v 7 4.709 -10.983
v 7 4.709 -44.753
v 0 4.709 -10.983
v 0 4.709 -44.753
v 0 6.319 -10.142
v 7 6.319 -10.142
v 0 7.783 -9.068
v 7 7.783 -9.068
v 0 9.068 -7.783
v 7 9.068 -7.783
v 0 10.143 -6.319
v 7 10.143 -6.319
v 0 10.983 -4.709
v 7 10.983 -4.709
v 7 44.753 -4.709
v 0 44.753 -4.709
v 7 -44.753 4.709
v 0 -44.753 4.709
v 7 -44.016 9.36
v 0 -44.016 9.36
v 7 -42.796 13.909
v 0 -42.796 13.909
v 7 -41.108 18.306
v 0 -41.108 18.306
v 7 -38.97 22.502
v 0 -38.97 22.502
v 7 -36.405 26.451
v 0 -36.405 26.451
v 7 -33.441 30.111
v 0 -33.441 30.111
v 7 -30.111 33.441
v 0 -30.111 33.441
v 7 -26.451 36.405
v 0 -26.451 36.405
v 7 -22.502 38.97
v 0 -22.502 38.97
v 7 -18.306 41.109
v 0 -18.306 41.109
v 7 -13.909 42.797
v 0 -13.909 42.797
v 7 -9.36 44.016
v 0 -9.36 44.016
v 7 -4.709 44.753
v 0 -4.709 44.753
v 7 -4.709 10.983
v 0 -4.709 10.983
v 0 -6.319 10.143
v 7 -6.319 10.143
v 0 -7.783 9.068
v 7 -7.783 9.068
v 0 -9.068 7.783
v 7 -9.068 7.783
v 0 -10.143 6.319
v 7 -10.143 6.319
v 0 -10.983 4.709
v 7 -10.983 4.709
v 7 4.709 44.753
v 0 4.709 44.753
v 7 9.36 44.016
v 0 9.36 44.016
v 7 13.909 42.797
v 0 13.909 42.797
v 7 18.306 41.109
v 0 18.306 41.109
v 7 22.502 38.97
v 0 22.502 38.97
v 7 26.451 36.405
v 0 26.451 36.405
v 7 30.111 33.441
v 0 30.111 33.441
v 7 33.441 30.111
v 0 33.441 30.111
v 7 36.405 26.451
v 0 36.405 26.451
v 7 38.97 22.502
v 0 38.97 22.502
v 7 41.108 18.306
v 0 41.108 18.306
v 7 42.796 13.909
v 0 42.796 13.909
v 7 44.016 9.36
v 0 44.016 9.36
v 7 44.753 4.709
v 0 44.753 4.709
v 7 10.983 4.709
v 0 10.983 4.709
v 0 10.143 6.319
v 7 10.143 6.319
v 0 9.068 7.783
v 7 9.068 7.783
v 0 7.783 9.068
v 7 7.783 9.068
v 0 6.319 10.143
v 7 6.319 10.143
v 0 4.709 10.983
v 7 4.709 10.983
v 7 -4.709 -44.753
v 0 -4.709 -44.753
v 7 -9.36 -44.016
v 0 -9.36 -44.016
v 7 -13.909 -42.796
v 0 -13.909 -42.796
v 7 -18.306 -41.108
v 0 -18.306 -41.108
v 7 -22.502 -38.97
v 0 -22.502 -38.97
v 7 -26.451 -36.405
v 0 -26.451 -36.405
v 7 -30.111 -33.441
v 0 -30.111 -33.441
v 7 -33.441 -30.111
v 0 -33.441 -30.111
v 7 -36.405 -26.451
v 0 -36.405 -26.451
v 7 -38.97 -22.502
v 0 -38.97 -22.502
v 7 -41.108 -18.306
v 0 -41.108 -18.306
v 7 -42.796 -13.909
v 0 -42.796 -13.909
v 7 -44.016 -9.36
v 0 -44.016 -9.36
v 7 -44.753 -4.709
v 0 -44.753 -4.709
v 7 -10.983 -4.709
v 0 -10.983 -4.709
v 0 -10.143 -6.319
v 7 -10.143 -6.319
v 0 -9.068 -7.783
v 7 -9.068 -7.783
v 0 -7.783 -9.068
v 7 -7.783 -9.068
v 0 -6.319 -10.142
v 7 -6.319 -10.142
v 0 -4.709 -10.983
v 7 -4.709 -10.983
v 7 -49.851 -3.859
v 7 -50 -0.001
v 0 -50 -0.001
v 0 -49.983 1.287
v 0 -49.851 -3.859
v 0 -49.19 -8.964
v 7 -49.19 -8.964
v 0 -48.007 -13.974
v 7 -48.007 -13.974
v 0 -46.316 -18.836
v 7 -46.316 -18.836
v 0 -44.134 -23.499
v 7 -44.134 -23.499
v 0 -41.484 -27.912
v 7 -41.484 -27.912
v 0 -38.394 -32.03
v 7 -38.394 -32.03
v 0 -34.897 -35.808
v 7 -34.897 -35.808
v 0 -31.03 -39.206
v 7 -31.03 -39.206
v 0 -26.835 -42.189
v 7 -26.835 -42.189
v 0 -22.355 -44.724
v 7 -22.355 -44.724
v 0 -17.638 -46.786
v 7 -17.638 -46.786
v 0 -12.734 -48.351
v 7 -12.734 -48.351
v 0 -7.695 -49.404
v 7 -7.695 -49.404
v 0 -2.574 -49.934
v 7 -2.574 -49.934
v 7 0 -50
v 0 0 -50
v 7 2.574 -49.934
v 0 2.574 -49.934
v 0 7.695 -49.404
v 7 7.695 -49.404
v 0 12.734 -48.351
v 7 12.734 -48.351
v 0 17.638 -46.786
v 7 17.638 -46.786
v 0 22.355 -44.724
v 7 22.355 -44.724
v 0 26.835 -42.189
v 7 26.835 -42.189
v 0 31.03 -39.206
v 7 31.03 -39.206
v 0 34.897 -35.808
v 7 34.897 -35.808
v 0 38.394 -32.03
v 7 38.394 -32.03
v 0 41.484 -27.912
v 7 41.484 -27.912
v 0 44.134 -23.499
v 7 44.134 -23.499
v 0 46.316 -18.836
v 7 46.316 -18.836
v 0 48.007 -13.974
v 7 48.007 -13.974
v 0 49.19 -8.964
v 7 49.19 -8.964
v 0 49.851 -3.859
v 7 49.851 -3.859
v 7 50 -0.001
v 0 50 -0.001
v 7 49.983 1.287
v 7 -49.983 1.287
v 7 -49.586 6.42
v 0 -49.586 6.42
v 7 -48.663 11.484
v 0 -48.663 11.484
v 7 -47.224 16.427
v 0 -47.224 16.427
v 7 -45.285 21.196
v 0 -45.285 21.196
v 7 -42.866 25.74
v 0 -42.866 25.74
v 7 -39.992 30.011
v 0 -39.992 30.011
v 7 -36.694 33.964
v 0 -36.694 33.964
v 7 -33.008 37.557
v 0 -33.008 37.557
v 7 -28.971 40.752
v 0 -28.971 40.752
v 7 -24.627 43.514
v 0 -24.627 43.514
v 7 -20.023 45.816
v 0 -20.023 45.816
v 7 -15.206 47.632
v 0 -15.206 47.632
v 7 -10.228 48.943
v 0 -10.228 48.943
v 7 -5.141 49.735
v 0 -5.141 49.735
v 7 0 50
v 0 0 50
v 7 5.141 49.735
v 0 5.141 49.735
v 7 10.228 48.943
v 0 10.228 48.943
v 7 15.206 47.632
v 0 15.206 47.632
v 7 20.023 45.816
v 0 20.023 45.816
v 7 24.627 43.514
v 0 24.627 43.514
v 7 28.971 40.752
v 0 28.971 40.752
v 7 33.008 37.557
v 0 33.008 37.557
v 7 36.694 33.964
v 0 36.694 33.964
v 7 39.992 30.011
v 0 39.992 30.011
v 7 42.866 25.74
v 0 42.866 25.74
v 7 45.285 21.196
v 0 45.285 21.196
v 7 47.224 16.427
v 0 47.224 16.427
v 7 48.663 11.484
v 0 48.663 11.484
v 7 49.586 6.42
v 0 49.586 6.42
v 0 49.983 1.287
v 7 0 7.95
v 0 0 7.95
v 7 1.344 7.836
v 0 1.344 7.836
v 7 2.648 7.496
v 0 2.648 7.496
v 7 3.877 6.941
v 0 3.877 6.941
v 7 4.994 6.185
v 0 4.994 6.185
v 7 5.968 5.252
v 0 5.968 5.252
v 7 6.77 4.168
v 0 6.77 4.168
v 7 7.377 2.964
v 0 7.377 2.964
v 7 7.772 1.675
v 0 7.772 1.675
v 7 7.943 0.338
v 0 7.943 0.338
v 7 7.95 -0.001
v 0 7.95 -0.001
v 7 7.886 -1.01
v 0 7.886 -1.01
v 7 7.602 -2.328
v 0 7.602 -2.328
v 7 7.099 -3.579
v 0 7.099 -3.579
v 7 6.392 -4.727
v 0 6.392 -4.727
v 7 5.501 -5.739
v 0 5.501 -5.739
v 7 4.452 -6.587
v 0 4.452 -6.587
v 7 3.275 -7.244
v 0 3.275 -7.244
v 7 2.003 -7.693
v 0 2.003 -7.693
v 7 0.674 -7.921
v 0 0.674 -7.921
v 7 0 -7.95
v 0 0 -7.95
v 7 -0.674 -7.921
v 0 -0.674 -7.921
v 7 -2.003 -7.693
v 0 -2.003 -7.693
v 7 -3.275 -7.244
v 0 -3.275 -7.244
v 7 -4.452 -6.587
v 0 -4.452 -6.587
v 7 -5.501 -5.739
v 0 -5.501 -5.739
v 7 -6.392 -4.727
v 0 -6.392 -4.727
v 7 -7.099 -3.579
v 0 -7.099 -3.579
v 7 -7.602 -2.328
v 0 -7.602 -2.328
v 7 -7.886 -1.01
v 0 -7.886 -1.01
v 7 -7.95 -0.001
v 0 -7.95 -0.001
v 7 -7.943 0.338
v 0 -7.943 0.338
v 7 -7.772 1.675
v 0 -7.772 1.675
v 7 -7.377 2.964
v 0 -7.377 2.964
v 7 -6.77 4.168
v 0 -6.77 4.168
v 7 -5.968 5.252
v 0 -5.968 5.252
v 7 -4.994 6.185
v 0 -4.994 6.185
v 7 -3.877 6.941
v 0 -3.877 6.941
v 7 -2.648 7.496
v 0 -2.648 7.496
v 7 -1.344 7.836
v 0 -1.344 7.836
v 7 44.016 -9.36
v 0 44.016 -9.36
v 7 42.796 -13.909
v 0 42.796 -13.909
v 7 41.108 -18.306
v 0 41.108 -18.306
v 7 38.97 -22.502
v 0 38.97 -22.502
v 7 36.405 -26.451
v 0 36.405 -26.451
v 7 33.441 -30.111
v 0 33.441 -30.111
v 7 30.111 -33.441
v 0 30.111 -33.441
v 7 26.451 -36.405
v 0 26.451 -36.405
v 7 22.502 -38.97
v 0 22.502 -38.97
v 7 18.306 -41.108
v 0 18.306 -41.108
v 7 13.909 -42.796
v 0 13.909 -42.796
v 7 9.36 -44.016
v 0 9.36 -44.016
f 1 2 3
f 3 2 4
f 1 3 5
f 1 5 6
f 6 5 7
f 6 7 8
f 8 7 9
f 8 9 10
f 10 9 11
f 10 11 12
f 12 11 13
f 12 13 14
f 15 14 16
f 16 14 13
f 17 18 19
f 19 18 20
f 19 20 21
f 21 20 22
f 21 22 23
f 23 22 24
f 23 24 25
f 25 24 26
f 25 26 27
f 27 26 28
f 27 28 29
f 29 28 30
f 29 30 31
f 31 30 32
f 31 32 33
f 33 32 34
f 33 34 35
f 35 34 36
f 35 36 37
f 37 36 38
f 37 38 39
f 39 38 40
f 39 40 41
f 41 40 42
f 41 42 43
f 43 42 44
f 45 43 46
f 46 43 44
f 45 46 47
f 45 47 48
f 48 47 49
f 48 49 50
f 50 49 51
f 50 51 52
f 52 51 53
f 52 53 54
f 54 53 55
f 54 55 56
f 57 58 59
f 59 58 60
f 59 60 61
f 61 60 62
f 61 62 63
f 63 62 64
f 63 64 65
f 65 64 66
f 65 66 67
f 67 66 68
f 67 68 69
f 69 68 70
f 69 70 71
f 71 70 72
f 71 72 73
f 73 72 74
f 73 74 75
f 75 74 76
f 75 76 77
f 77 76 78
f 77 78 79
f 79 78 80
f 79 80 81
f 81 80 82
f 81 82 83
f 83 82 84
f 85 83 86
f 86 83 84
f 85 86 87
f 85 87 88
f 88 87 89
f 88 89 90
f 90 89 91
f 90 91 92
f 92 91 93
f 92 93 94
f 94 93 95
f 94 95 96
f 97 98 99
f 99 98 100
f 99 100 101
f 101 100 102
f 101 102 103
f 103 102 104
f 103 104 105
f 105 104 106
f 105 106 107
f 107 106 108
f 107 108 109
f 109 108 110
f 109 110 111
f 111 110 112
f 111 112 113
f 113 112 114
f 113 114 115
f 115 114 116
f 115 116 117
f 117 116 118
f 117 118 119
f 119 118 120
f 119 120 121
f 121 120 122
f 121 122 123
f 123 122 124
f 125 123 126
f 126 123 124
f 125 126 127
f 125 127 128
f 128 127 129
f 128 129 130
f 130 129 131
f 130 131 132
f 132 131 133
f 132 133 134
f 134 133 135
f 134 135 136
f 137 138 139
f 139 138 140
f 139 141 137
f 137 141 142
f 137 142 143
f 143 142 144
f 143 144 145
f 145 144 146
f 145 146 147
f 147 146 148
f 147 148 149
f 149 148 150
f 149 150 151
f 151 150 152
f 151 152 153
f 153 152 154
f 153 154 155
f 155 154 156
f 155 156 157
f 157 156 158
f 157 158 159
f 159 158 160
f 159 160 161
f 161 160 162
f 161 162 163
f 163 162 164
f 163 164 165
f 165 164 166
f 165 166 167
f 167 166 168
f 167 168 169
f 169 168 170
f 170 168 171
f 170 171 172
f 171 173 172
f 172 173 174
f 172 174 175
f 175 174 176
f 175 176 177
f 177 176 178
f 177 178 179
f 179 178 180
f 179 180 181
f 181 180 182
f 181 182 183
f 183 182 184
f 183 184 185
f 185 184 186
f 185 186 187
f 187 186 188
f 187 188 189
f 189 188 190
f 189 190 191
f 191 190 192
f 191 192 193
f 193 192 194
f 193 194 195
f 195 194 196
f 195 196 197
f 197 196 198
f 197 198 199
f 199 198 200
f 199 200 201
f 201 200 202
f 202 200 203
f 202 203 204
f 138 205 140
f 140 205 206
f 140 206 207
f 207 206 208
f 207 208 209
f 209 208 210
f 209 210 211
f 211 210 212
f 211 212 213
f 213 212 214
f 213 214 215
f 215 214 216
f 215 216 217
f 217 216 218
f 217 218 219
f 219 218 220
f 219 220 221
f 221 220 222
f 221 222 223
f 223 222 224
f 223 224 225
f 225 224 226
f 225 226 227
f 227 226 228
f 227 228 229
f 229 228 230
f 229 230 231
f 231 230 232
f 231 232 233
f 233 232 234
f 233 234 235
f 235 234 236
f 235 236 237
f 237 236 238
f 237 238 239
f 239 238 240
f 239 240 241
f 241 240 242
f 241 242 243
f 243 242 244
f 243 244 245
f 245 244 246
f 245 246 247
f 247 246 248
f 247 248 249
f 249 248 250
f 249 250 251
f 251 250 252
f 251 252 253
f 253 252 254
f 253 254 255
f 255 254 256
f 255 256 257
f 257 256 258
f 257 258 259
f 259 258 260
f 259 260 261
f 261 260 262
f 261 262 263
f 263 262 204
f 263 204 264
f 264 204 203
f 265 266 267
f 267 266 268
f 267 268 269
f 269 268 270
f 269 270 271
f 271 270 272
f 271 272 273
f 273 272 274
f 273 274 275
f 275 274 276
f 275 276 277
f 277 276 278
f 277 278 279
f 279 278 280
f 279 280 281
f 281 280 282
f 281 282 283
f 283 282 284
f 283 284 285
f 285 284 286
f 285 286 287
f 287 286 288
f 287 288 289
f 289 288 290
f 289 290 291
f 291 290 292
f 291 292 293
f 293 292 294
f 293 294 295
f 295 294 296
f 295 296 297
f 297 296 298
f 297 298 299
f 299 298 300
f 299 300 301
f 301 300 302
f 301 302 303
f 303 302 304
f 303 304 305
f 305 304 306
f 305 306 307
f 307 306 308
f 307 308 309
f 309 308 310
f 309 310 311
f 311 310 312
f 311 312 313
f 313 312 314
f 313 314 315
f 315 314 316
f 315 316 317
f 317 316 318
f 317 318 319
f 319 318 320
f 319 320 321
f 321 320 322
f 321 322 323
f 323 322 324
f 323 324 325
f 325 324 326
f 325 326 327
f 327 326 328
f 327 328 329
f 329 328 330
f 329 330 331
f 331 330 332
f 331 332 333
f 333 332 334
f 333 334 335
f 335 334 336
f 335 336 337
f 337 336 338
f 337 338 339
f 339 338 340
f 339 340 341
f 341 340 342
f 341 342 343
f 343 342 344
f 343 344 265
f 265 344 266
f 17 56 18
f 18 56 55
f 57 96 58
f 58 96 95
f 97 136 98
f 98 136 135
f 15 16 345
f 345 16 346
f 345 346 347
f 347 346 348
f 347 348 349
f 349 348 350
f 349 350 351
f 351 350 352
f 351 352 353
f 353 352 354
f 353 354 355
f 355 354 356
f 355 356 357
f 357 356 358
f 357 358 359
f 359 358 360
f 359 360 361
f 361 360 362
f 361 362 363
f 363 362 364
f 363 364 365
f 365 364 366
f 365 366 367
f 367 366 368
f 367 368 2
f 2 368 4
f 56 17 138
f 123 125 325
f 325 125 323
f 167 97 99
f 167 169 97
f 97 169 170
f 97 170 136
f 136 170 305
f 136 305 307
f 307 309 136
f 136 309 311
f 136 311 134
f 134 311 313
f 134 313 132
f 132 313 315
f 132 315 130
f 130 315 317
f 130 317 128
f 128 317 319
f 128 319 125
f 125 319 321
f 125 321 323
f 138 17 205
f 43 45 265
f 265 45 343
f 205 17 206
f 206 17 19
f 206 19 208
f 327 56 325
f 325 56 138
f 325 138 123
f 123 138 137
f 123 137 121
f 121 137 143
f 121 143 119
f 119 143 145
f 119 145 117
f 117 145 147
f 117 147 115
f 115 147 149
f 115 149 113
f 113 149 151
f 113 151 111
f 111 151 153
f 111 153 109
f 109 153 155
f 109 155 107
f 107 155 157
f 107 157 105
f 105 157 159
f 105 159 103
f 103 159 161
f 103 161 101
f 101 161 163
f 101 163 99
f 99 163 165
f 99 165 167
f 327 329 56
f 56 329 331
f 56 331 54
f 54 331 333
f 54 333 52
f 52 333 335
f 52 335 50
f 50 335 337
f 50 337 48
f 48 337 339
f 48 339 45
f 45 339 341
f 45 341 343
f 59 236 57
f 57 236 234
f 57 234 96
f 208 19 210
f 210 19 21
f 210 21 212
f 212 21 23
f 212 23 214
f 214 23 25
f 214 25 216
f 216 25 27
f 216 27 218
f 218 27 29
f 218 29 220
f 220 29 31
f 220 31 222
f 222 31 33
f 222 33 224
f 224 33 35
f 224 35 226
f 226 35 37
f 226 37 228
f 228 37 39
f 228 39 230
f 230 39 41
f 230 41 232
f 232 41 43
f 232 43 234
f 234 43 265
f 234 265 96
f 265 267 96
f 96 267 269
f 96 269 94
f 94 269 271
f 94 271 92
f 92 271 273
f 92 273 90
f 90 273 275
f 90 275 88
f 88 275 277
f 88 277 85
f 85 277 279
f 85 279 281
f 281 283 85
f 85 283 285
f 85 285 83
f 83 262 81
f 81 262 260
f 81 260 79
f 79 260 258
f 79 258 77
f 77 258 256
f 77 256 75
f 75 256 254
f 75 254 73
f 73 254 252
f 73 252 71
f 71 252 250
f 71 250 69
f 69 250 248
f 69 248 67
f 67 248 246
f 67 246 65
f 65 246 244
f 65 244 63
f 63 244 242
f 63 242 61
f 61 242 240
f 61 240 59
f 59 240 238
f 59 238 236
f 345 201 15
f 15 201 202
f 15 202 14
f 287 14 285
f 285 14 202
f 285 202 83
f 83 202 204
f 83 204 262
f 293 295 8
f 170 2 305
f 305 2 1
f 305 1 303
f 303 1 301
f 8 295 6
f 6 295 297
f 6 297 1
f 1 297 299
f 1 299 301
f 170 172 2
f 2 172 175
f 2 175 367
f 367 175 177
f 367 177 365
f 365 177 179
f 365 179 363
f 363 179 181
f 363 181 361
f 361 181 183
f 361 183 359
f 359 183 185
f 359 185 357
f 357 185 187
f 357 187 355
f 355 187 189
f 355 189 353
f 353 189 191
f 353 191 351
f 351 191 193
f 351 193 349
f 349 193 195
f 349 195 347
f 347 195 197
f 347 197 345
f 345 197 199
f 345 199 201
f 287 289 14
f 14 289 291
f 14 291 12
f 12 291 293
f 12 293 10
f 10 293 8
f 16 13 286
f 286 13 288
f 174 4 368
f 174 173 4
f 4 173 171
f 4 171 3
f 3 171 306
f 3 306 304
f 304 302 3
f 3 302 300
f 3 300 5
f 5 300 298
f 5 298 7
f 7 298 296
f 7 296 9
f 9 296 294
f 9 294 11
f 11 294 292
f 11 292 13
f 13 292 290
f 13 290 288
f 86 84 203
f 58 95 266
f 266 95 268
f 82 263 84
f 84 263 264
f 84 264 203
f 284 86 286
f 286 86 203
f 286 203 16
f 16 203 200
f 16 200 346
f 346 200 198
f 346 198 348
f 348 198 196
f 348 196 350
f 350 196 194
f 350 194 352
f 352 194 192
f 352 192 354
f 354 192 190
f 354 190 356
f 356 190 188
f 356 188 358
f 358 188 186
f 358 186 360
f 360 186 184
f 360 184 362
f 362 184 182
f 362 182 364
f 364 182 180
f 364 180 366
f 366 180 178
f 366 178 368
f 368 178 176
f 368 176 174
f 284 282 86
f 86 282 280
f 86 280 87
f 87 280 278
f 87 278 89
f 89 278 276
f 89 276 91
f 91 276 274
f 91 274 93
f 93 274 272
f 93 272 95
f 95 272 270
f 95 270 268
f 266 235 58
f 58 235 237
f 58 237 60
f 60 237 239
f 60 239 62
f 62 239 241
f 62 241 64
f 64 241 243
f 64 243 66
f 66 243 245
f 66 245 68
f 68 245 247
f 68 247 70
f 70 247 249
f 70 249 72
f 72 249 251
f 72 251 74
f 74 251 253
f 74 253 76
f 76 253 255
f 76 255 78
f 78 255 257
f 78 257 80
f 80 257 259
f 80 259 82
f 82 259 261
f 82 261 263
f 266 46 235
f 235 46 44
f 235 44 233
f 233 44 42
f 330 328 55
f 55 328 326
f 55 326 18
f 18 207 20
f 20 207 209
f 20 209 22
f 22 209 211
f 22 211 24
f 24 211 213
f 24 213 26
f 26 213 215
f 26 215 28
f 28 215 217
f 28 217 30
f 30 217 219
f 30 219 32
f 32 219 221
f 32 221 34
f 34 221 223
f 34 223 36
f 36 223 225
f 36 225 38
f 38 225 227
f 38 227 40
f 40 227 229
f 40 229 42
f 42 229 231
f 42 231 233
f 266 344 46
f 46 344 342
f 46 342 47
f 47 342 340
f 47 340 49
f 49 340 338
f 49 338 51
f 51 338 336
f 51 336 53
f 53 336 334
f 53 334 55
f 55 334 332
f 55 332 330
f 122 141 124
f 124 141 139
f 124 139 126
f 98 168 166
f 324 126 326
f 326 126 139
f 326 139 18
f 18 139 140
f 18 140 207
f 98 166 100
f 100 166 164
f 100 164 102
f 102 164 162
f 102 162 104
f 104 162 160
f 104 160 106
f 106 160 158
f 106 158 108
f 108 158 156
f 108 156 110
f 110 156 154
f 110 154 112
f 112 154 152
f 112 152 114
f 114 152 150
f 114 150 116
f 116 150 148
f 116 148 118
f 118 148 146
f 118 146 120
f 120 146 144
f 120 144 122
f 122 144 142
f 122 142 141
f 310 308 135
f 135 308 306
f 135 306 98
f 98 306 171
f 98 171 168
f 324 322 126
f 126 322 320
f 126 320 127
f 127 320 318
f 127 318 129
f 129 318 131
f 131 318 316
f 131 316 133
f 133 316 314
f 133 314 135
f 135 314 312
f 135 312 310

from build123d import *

# Parameters (mm, degrees)
SKETCH3_R           = 50
BOSS_EXTRUDE3_DEPTH = 7


with BuildPart() as part:
    # Sketch3 → Boss-Extrude3 (new body)
    with BuildSketch(Plane(origin=(0, 0, 0), x_dir=(0, 0, -1), z_dir=(1, 0, 0))):
        Circle(SKETCH3_R)
        with BuildLine():
            Line((-4.708862012, -10.983128814), (-4.708862012, -44.752950948))
            ThreePointArc((-4.708862012, -44.752950948), (-31.819805153, -31.819805153), (-44.752950948, -4.708862012))
            Line((-44.752950948, -4.708862012), (-10.983128814, -4.708862012))
            ThreePointArc((-10.983128814, -4.708862012), (-8.449926035, -8.449926035), (-4.708862012, -10.983128814))
        make_face(mode=Mode.SUBTRACT)
        with BuildLine():
            Line((10.983128814, -4.708862012), (44.752950948, -4.708862012))
            ThreePointArc((44.752950948, -4.708862012), (31.819805153, -31.819805153), (4.708862012, -44.752950948))
            Line((4.708862012, -44.752950948), (4.708862012, -10.983128814))
            ThreePointArc((4.708862012, -10.983128814), (8.449926035, -8.449926035), (10.983128814, -4.708862012))
        make_face(mode=Mode.SUBTRACT)
        with BuildLine():
            ThreePointArc((-44.752950948, 4.708862012), (-31.819805153, 31.819805153), (-4.708862012, 44.752950948))
            Line((-4.708862012, 44.752950948), (-4.708862012, 10.983128814))
            ThreePointArc((-4.708862012, 10.983128814), (-8.449926035, 8.449926035), (-10.983128814, 4.708862012))
            Line((-10.983128814, 4.708862012), (-44.752950948, 4.708862012))
        make_face(mode=Mode.SUBTRACT)
        with BuildLine():
            ThreePointArc((-1.652897942, 7.776273426), (-0.831001283, 7.906449068), (0, 7.95))
            ThreePointArc((0, 7.95), (0.831001283, 7.906449068), (1.652897942, 7.776273426))
            ThreePointArc((1.652897942, 7.776273426), (2.456685105, 7.560899305), (3.233556312, 7.262686388))
            ThreePointArc((3.233556312, 7.262686388), (3.975, 6.88490196), (4.672892756, 6.431685105))
            ThreePointArc((4.672892756, 6.431685105), (5.319588321, 5.908001363), (5.908001363, 5.319588321))
            ThreePointArc((5.908001363, 5.319588321), (6.431685105, 4.672892756), (6.88490196, 3.975))
            ThreePointArc((6.88490196, 3.975), (7.262686388, 3.233556312), (7.560899305, 2.456685105))
            ThreePointArc((7.560899305, 2.456685105), (7.776273426, 1.652897942), (7.906449068, 0.831001283))
            ThreePointArc((7.906449068, 0.831001283), (7.939104801, 0.416070852), (7.95, 0))
            ThreePointArc((7.95, 0), (7.939104801, -0.416070852), (7.906449068, -0.831001283))
            ThreePointArc((7.906449068, -0.831001283), (7.776273426, -1.652897942), (7.560899305, -2.456685105))
            ThreePointArc((7.560899305, -2.456685105), (7.262686388, -3.233556312), (6.88490196, -3.975))
            ThreePointArc((6.88490196, -3.975), (6.431685105, -4.672892756), (5.908001363, -5.319588321))
            ThreePointArc((5.908001363, -5.319588321), (5.319588321, -5.908001363), (4.672892756, -6.431685105))
            ThreePointArc((4.672892756, -6.431685105), (3.975, -6.88490196), (3.233556312, -7.262686388))
            ThreePointArc((3.233556312, -7.262686388), (2.456685105, -7.560899305), (1.652897942, -7.776273426))
            ThreePointArc((1.652897942, -7.776273426), (0.831001283, -7.906449068), (0, -7.95))
            ThreePointArc((0, -7.95), (-0.831001283, -7.906449068), (-1.652897942, -7.776273426))
            ThreePointArc((-1.652897942, -7.776273426), (-2.456685105, -7.560899305), (-3.233556312, -7.262686388))
            ThreePointArc((-3.233556312, -7.262686388), (-3.975, -6.88490196), (-4.672892756, -6.431685105))
            ThreePointArc((-4.672892756, -6.431685105), (-5.319588321, -5.908001363), (-5.908001363, -5.319588321))
            ThreePointArc((-5.908001363, -5.319588321), (-6.431685105, -4.672892756), (-6.88490196, -3.975))
            ThreePointArc((-6.88490196, -3.975), (-7.262686388, -3.233556312), (-7.560899305, -2.456685105))
            ThreePointArc((-7.560899305, -2.456685105), (-7.776273426, -1.652897942), (-7.906449068, -0.831001283))
            ThreePointArc((-7.906449068, -0.831001283), (-7.95, 0), (-7.906449068, 0.831001283))
            ThreePointArc((-7.906449068, 0.831001283), (-7.776273426, 1.652897942), (-7.560899305, 2.456685105))
            ThreePointArc((-7.560899305, 2.456685105), (-7.262686388, 3.233556312), (-6.88490196, 3.975))
            ThreePointArc((-6.88490196, 3.975), (-6.431685105, 4.672892756), (-5.908001363, 5.319588321))
            ThreePointArc((-5.908001363, 5.319588321), (-5.319588321, 5.908001363), (-4.672892756, 6.431685105))
            ThreePointArc((-4.672892756, 6.431685105), (-3.975, 6.88490196), (-3.233556312, 7.262686388))
            ThreePointArc((-3.233556312, 7.262686388), (-2.456685105, 7.560899305), (-1.652897942, 7.776273426))
        make_face(mode=Mode.SUBTRACT)
        with BuildLine():
            Line((4.708862012, 10.983128814), (4.708862012, 44.752950948))
            ThreePointArc((4.708862012, 44.752950948), (31.819805153, 31.819805153), (44.752950948, 4.708862012))
            Line((44.752950948, 4.708862012), (10.983128814, 4.708862012))
            ThreePointArc((10.983128814, 4.708862012), (8.449926035, 8.449926035), (4.708862012, 10.983128814))
        make_face(mode=Mode.SUBTRACT)
    extrude(amount=BOSS_EXTRUDE3_DEPTH)


solid = part.part
